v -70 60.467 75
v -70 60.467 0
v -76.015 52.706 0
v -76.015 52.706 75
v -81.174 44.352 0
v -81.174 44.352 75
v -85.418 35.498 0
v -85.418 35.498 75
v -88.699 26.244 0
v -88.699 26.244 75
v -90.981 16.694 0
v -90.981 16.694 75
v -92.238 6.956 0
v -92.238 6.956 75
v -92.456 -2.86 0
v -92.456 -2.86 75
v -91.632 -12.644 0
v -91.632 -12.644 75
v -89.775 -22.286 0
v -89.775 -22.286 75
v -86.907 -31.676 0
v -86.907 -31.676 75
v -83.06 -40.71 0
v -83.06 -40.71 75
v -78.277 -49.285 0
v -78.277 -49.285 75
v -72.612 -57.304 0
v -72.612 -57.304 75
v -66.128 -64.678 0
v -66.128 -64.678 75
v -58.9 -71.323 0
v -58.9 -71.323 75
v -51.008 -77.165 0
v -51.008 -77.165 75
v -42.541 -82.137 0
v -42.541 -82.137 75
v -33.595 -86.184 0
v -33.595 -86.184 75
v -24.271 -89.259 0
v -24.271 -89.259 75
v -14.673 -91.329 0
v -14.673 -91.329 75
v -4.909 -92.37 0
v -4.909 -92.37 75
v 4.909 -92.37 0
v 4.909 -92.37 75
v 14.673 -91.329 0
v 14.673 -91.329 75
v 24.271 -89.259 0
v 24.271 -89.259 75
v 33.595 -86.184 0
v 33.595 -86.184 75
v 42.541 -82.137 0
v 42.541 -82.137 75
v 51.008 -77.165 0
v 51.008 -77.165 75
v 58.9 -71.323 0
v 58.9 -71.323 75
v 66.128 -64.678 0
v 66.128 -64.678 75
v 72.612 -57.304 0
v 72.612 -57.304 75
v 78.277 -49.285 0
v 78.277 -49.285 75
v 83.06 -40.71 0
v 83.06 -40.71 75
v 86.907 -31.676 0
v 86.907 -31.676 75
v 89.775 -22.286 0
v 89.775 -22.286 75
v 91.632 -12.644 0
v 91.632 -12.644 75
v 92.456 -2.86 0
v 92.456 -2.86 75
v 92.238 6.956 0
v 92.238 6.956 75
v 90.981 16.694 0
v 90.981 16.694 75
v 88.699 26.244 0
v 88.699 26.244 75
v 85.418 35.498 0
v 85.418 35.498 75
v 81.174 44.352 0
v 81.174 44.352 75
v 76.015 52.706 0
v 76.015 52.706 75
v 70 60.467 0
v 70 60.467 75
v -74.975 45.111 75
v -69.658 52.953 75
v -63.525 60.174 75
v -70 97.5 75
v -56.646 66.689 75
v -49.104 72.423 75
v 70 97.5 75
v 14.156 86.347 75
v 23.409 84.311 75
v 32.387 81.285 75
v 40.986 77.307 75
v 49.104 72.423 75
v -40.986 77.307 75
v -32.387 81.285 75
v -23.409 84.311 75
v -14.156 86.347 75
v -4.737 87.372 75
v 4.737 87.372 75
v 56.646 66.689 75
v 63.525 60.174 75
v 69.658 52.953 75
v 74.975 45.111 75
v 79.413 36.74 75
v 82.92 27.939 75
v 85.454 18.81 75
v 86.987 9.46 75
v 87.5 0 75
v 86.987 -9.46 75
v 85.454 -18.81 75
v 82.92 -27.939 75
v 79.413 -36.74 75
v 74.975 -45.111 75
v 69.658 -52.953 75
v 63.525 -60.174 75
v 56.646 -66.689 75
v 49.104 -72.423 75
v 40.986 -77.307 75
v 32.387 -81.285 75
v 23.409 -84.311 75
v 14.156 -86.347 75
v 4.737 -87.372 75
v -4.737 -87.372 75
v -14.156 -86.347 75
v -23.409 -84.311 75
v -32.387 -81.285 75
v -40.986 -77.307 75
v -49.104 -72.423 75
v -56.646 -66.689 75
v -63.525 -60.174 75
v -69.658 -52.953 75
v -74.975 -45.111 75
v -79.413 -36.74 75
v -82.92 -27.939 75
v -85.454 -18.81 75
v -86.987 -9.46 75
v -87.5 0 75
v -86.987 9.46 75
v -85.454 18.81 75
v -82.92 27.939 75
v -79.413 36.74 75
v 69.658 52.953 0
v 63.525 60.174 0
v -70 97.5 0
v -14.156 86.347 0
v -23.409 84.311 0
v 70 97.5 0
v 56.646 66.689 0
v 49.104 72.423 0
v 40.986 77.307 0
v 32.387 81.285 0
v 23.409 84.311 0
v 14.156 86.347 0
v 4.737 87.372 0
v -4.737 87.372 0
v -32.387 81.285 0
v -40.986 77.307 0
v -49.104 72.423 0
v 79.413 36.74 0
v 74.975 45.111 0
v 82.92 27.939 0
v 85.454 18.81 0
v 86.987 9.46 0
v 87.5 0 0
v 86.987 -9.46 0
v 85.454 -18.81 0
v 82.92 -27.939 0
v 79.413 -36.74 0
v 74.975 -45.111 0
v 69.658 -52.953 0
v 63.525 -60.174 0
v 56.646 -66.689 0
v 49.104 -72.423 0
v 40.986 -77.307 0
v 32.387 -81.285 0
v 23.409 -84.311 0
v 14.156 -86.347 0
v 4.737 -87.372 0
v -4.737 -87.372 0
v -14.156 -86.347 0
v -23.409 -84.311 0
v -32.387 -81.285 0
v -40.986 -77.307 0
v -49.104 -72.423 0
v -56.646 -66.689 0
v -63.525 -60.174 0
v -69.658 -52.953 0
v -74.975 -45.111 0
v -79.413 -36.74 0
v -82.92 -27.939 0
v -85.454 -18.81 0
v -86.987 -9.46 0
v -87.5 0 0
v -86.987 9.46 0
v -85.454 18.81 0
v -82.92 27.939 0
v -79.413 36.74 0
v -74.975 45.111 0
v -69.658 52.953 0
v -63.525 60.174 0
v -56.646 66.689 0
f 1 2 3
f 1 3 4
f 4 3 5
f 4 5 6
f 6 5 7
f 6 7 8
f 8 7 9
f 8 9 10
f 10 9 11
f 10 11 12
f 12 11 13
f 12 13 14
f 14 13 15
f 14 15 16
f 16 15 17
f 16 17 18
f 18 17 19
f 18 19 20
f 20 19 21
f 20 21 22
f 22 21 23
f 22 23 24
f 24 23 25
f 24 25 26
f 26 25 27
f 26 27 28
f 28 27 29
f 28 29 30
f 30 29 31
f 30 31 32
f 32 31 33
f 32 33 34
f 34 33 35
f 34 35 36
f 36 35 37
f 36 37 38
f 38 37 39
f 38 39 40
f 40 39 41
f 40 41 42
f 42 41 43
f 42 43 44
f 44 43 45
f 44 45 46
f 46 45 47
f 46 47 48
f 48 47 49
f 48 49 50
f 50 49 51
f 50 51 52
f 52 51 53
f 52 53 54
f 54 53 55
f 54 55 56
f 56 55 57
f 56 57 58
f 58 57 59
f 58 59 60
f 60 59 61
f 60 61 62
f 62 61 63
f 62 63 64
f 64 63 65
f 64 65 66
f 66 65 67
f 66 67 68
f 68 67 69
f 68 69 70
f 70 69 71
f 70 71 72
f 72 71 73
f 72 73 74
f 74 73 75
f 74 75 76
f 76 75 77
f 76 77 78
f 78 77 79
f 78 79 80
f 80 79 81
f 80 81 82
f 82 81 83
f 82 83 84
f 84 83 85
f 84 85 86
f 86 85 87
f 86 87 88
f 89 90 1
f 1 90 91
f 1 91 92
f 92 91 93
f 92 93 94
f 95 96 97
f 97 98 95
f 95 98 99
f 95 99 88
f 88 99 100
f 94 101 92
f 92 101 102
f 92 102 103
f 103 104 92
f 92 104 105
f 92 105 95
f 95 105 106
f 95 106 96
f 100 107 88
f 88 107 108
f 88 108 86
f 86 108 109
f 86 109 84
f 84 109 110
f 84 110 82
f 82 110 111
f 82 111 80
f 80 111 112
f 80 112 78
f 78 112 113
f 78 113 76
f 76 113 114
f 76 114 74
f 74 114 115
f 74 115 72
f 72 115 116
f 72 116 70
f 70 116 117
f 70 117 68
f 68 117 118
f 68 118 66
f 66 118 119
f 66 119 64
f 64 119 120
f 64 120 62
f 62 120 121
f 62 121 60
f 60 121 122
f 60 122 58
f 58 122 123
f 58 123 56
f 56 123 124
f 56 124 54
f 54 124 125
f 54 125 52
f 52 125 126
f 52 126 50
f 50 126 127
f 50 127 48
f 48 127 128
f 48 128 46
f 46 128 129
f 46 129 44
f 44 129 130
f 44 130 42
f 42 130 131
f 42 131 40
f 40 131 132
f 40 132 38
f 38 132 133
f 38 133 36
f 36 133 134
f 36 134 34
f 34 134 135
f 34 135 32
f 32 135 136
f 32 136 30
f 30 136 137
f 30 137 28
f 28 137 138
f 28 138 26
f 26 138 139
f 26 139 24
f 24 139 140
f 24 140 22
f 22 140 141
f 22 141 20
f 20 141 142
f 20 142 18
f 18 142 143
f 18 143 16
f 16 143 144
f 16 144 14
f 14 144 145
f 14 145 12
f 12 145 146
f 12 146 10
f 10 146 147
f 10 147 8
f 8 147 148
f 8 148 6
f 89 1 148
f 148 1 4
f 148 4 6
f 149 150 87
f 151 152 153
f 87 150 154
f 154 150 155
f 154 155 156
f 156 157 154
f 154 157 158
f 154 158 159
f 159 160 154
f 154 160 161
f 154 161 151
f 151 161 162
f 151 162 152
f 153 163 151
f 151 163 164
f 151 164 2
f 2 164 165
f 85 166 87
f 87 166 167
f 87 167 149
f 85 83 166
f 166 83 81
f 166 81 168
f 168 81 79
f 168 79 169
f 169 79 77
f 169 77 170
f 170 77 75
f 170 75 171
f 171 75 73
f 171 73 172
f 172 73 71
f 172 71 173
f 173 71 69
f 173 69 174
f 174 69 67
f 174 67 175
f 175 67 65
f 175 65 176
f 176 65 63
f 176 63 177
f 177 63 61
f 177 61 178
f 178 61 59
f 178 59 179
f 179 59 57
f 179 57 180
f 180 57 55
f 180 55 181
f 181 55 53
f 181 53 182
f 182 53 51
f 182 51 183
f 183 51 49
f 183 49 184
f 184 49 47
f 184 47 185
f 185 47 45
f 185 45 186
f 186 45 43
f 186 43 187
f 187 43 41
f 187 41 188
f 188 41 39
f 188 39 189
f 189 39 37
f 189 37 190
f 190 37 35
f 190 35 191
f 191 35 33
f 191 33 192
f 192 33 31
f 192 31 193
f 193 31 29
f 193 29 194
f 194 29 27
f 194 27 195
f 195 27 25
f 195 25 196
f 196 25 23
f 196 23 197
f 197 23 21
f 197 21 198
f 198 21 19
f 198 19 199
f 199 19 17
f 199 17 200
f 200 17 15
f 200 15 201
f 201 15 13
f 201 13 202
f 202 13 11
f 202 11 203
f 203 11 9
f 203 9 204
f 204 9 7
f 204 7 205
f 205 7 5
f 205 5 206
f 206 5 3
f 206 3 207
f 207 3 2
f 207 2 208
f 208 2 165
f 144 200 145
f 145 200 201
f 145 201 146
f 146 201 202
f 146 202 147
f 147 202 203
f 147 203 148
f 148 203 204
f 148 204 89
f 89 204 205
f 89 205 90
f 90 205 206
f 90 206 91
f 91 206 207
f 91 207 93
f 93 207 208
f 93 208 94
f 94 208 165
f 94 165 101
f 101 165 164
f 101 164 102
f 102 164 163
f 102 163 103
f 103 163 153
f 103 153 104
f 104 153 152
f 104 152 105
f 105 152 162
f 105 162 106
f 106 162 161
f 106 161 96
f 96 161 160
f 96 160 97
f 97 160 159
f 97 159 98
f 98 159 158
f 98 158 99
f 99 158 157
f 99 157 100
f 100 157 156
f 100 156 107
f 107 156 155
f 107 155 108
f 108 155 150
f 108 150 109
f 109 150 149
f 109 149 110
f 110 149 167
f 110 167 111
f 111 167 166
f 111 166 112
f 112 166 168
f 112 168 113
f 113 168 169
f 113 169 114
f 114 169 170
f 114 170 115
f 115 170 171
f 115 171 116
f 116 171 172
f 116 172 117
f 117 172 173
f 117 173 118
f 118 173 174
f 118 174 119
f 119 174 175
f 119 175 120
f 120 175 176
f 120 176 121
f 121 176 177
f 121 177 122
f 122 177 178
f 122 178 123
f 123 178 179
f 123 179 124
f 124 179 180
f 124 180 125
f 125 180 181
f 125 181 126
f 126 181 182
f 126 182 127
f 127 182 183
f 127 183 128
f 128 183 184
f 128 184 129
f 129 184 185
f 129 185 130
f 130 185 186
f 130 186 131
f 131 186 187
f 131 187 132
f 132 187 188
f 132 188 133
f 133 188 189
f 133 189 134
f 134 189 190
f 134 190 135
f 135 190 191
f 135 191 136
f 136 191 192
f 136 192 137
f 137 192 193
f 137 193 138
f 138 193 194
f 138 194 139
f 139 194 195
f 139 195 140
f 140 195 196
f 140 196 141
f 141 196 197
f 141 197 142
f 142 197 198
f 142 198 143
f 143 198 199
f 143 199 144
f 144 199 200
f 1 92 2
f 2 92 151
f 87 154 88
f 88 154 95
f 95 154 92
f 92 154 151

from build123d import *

# Parameters (mm, degrees)
SKETCH3_R                       = 92.5
SKETCH3_R_2                     = 87.5
BOSS_EXTRUDE3_DEPTH             = 75
BOSS_EXTRUDE4_REACH             = 222.014
BOSS_EXTRUDE4_END_RADIUS        = 92.5
SKETCH4_W                       = 140
SKETCH4_H                       = 75
BOSS_EXTRUDE4_DIRECTION_2_DEPTH = 5


with BuildPart() as part:
    # Sketch3 → Boss-Extrude3 (new body)
    with BuildSketch(Plane.XY):
        Circle(SKETCH3_R)
        Circle(SKETCH3_R_2, mode=Mode.SUBTRACT)
    extrude(amount=BOSS_EXTRUDE3_DEPTH)

    # Boss-Extrude4: up to this cylinder (the profile starts outside it)
    boss_extrude4_end = Plane(origin=(0, 0, 37.5), z_dir=(0, 0, -1)) * Cylinder(BOSS_EXTRUDE4_END_RADIUS, 630.028, mode=Mode.PRIVATE)
    # Sketch4 → Boss-Extrude4 (add, up to the surface)
    with BuildSketch(Plane(origin=(0, 92.5, 0), x_dir=(1, 0, 0), z_dir=(0, 1, 0)), mode=Mode.PRIVATE) as boss_extrude4_sk1:
        with Locations((0, -37.5)):
            Rectangle(SKETCH4_W, SKETCH4_H)
    boss_extrude4_tool1 = extrude(boss_extrude4_sk1.sketch, amount=-BOSS_EXTRUDE4_REACH, mode=Mode.PRIVATE) - boss_extrude4_end
    add(boss_extrude4_tool1.solids().sort_by_distance((0, 92.5, 37.5))[0])
    add(boss_extrude4_tool1.solids().sort_by_distance((0, 92.5, 37.5))[1])

    # Sketch4 → Boss-Extrude4 direction 2 (add)
    with BuildSketch(Plane(origin=(0, 92.5, 0), x_dir=(1, 0, 0), z_dir=(0, 1, 0))):
        with Locations((0, -37.5)):
            Rectangle(SKETCH4_W, SKETCH4_H)
    extrude(amount=BOSS_EXTRUDE4_DIRECTION_2_DEPTH)


solid = part.part
